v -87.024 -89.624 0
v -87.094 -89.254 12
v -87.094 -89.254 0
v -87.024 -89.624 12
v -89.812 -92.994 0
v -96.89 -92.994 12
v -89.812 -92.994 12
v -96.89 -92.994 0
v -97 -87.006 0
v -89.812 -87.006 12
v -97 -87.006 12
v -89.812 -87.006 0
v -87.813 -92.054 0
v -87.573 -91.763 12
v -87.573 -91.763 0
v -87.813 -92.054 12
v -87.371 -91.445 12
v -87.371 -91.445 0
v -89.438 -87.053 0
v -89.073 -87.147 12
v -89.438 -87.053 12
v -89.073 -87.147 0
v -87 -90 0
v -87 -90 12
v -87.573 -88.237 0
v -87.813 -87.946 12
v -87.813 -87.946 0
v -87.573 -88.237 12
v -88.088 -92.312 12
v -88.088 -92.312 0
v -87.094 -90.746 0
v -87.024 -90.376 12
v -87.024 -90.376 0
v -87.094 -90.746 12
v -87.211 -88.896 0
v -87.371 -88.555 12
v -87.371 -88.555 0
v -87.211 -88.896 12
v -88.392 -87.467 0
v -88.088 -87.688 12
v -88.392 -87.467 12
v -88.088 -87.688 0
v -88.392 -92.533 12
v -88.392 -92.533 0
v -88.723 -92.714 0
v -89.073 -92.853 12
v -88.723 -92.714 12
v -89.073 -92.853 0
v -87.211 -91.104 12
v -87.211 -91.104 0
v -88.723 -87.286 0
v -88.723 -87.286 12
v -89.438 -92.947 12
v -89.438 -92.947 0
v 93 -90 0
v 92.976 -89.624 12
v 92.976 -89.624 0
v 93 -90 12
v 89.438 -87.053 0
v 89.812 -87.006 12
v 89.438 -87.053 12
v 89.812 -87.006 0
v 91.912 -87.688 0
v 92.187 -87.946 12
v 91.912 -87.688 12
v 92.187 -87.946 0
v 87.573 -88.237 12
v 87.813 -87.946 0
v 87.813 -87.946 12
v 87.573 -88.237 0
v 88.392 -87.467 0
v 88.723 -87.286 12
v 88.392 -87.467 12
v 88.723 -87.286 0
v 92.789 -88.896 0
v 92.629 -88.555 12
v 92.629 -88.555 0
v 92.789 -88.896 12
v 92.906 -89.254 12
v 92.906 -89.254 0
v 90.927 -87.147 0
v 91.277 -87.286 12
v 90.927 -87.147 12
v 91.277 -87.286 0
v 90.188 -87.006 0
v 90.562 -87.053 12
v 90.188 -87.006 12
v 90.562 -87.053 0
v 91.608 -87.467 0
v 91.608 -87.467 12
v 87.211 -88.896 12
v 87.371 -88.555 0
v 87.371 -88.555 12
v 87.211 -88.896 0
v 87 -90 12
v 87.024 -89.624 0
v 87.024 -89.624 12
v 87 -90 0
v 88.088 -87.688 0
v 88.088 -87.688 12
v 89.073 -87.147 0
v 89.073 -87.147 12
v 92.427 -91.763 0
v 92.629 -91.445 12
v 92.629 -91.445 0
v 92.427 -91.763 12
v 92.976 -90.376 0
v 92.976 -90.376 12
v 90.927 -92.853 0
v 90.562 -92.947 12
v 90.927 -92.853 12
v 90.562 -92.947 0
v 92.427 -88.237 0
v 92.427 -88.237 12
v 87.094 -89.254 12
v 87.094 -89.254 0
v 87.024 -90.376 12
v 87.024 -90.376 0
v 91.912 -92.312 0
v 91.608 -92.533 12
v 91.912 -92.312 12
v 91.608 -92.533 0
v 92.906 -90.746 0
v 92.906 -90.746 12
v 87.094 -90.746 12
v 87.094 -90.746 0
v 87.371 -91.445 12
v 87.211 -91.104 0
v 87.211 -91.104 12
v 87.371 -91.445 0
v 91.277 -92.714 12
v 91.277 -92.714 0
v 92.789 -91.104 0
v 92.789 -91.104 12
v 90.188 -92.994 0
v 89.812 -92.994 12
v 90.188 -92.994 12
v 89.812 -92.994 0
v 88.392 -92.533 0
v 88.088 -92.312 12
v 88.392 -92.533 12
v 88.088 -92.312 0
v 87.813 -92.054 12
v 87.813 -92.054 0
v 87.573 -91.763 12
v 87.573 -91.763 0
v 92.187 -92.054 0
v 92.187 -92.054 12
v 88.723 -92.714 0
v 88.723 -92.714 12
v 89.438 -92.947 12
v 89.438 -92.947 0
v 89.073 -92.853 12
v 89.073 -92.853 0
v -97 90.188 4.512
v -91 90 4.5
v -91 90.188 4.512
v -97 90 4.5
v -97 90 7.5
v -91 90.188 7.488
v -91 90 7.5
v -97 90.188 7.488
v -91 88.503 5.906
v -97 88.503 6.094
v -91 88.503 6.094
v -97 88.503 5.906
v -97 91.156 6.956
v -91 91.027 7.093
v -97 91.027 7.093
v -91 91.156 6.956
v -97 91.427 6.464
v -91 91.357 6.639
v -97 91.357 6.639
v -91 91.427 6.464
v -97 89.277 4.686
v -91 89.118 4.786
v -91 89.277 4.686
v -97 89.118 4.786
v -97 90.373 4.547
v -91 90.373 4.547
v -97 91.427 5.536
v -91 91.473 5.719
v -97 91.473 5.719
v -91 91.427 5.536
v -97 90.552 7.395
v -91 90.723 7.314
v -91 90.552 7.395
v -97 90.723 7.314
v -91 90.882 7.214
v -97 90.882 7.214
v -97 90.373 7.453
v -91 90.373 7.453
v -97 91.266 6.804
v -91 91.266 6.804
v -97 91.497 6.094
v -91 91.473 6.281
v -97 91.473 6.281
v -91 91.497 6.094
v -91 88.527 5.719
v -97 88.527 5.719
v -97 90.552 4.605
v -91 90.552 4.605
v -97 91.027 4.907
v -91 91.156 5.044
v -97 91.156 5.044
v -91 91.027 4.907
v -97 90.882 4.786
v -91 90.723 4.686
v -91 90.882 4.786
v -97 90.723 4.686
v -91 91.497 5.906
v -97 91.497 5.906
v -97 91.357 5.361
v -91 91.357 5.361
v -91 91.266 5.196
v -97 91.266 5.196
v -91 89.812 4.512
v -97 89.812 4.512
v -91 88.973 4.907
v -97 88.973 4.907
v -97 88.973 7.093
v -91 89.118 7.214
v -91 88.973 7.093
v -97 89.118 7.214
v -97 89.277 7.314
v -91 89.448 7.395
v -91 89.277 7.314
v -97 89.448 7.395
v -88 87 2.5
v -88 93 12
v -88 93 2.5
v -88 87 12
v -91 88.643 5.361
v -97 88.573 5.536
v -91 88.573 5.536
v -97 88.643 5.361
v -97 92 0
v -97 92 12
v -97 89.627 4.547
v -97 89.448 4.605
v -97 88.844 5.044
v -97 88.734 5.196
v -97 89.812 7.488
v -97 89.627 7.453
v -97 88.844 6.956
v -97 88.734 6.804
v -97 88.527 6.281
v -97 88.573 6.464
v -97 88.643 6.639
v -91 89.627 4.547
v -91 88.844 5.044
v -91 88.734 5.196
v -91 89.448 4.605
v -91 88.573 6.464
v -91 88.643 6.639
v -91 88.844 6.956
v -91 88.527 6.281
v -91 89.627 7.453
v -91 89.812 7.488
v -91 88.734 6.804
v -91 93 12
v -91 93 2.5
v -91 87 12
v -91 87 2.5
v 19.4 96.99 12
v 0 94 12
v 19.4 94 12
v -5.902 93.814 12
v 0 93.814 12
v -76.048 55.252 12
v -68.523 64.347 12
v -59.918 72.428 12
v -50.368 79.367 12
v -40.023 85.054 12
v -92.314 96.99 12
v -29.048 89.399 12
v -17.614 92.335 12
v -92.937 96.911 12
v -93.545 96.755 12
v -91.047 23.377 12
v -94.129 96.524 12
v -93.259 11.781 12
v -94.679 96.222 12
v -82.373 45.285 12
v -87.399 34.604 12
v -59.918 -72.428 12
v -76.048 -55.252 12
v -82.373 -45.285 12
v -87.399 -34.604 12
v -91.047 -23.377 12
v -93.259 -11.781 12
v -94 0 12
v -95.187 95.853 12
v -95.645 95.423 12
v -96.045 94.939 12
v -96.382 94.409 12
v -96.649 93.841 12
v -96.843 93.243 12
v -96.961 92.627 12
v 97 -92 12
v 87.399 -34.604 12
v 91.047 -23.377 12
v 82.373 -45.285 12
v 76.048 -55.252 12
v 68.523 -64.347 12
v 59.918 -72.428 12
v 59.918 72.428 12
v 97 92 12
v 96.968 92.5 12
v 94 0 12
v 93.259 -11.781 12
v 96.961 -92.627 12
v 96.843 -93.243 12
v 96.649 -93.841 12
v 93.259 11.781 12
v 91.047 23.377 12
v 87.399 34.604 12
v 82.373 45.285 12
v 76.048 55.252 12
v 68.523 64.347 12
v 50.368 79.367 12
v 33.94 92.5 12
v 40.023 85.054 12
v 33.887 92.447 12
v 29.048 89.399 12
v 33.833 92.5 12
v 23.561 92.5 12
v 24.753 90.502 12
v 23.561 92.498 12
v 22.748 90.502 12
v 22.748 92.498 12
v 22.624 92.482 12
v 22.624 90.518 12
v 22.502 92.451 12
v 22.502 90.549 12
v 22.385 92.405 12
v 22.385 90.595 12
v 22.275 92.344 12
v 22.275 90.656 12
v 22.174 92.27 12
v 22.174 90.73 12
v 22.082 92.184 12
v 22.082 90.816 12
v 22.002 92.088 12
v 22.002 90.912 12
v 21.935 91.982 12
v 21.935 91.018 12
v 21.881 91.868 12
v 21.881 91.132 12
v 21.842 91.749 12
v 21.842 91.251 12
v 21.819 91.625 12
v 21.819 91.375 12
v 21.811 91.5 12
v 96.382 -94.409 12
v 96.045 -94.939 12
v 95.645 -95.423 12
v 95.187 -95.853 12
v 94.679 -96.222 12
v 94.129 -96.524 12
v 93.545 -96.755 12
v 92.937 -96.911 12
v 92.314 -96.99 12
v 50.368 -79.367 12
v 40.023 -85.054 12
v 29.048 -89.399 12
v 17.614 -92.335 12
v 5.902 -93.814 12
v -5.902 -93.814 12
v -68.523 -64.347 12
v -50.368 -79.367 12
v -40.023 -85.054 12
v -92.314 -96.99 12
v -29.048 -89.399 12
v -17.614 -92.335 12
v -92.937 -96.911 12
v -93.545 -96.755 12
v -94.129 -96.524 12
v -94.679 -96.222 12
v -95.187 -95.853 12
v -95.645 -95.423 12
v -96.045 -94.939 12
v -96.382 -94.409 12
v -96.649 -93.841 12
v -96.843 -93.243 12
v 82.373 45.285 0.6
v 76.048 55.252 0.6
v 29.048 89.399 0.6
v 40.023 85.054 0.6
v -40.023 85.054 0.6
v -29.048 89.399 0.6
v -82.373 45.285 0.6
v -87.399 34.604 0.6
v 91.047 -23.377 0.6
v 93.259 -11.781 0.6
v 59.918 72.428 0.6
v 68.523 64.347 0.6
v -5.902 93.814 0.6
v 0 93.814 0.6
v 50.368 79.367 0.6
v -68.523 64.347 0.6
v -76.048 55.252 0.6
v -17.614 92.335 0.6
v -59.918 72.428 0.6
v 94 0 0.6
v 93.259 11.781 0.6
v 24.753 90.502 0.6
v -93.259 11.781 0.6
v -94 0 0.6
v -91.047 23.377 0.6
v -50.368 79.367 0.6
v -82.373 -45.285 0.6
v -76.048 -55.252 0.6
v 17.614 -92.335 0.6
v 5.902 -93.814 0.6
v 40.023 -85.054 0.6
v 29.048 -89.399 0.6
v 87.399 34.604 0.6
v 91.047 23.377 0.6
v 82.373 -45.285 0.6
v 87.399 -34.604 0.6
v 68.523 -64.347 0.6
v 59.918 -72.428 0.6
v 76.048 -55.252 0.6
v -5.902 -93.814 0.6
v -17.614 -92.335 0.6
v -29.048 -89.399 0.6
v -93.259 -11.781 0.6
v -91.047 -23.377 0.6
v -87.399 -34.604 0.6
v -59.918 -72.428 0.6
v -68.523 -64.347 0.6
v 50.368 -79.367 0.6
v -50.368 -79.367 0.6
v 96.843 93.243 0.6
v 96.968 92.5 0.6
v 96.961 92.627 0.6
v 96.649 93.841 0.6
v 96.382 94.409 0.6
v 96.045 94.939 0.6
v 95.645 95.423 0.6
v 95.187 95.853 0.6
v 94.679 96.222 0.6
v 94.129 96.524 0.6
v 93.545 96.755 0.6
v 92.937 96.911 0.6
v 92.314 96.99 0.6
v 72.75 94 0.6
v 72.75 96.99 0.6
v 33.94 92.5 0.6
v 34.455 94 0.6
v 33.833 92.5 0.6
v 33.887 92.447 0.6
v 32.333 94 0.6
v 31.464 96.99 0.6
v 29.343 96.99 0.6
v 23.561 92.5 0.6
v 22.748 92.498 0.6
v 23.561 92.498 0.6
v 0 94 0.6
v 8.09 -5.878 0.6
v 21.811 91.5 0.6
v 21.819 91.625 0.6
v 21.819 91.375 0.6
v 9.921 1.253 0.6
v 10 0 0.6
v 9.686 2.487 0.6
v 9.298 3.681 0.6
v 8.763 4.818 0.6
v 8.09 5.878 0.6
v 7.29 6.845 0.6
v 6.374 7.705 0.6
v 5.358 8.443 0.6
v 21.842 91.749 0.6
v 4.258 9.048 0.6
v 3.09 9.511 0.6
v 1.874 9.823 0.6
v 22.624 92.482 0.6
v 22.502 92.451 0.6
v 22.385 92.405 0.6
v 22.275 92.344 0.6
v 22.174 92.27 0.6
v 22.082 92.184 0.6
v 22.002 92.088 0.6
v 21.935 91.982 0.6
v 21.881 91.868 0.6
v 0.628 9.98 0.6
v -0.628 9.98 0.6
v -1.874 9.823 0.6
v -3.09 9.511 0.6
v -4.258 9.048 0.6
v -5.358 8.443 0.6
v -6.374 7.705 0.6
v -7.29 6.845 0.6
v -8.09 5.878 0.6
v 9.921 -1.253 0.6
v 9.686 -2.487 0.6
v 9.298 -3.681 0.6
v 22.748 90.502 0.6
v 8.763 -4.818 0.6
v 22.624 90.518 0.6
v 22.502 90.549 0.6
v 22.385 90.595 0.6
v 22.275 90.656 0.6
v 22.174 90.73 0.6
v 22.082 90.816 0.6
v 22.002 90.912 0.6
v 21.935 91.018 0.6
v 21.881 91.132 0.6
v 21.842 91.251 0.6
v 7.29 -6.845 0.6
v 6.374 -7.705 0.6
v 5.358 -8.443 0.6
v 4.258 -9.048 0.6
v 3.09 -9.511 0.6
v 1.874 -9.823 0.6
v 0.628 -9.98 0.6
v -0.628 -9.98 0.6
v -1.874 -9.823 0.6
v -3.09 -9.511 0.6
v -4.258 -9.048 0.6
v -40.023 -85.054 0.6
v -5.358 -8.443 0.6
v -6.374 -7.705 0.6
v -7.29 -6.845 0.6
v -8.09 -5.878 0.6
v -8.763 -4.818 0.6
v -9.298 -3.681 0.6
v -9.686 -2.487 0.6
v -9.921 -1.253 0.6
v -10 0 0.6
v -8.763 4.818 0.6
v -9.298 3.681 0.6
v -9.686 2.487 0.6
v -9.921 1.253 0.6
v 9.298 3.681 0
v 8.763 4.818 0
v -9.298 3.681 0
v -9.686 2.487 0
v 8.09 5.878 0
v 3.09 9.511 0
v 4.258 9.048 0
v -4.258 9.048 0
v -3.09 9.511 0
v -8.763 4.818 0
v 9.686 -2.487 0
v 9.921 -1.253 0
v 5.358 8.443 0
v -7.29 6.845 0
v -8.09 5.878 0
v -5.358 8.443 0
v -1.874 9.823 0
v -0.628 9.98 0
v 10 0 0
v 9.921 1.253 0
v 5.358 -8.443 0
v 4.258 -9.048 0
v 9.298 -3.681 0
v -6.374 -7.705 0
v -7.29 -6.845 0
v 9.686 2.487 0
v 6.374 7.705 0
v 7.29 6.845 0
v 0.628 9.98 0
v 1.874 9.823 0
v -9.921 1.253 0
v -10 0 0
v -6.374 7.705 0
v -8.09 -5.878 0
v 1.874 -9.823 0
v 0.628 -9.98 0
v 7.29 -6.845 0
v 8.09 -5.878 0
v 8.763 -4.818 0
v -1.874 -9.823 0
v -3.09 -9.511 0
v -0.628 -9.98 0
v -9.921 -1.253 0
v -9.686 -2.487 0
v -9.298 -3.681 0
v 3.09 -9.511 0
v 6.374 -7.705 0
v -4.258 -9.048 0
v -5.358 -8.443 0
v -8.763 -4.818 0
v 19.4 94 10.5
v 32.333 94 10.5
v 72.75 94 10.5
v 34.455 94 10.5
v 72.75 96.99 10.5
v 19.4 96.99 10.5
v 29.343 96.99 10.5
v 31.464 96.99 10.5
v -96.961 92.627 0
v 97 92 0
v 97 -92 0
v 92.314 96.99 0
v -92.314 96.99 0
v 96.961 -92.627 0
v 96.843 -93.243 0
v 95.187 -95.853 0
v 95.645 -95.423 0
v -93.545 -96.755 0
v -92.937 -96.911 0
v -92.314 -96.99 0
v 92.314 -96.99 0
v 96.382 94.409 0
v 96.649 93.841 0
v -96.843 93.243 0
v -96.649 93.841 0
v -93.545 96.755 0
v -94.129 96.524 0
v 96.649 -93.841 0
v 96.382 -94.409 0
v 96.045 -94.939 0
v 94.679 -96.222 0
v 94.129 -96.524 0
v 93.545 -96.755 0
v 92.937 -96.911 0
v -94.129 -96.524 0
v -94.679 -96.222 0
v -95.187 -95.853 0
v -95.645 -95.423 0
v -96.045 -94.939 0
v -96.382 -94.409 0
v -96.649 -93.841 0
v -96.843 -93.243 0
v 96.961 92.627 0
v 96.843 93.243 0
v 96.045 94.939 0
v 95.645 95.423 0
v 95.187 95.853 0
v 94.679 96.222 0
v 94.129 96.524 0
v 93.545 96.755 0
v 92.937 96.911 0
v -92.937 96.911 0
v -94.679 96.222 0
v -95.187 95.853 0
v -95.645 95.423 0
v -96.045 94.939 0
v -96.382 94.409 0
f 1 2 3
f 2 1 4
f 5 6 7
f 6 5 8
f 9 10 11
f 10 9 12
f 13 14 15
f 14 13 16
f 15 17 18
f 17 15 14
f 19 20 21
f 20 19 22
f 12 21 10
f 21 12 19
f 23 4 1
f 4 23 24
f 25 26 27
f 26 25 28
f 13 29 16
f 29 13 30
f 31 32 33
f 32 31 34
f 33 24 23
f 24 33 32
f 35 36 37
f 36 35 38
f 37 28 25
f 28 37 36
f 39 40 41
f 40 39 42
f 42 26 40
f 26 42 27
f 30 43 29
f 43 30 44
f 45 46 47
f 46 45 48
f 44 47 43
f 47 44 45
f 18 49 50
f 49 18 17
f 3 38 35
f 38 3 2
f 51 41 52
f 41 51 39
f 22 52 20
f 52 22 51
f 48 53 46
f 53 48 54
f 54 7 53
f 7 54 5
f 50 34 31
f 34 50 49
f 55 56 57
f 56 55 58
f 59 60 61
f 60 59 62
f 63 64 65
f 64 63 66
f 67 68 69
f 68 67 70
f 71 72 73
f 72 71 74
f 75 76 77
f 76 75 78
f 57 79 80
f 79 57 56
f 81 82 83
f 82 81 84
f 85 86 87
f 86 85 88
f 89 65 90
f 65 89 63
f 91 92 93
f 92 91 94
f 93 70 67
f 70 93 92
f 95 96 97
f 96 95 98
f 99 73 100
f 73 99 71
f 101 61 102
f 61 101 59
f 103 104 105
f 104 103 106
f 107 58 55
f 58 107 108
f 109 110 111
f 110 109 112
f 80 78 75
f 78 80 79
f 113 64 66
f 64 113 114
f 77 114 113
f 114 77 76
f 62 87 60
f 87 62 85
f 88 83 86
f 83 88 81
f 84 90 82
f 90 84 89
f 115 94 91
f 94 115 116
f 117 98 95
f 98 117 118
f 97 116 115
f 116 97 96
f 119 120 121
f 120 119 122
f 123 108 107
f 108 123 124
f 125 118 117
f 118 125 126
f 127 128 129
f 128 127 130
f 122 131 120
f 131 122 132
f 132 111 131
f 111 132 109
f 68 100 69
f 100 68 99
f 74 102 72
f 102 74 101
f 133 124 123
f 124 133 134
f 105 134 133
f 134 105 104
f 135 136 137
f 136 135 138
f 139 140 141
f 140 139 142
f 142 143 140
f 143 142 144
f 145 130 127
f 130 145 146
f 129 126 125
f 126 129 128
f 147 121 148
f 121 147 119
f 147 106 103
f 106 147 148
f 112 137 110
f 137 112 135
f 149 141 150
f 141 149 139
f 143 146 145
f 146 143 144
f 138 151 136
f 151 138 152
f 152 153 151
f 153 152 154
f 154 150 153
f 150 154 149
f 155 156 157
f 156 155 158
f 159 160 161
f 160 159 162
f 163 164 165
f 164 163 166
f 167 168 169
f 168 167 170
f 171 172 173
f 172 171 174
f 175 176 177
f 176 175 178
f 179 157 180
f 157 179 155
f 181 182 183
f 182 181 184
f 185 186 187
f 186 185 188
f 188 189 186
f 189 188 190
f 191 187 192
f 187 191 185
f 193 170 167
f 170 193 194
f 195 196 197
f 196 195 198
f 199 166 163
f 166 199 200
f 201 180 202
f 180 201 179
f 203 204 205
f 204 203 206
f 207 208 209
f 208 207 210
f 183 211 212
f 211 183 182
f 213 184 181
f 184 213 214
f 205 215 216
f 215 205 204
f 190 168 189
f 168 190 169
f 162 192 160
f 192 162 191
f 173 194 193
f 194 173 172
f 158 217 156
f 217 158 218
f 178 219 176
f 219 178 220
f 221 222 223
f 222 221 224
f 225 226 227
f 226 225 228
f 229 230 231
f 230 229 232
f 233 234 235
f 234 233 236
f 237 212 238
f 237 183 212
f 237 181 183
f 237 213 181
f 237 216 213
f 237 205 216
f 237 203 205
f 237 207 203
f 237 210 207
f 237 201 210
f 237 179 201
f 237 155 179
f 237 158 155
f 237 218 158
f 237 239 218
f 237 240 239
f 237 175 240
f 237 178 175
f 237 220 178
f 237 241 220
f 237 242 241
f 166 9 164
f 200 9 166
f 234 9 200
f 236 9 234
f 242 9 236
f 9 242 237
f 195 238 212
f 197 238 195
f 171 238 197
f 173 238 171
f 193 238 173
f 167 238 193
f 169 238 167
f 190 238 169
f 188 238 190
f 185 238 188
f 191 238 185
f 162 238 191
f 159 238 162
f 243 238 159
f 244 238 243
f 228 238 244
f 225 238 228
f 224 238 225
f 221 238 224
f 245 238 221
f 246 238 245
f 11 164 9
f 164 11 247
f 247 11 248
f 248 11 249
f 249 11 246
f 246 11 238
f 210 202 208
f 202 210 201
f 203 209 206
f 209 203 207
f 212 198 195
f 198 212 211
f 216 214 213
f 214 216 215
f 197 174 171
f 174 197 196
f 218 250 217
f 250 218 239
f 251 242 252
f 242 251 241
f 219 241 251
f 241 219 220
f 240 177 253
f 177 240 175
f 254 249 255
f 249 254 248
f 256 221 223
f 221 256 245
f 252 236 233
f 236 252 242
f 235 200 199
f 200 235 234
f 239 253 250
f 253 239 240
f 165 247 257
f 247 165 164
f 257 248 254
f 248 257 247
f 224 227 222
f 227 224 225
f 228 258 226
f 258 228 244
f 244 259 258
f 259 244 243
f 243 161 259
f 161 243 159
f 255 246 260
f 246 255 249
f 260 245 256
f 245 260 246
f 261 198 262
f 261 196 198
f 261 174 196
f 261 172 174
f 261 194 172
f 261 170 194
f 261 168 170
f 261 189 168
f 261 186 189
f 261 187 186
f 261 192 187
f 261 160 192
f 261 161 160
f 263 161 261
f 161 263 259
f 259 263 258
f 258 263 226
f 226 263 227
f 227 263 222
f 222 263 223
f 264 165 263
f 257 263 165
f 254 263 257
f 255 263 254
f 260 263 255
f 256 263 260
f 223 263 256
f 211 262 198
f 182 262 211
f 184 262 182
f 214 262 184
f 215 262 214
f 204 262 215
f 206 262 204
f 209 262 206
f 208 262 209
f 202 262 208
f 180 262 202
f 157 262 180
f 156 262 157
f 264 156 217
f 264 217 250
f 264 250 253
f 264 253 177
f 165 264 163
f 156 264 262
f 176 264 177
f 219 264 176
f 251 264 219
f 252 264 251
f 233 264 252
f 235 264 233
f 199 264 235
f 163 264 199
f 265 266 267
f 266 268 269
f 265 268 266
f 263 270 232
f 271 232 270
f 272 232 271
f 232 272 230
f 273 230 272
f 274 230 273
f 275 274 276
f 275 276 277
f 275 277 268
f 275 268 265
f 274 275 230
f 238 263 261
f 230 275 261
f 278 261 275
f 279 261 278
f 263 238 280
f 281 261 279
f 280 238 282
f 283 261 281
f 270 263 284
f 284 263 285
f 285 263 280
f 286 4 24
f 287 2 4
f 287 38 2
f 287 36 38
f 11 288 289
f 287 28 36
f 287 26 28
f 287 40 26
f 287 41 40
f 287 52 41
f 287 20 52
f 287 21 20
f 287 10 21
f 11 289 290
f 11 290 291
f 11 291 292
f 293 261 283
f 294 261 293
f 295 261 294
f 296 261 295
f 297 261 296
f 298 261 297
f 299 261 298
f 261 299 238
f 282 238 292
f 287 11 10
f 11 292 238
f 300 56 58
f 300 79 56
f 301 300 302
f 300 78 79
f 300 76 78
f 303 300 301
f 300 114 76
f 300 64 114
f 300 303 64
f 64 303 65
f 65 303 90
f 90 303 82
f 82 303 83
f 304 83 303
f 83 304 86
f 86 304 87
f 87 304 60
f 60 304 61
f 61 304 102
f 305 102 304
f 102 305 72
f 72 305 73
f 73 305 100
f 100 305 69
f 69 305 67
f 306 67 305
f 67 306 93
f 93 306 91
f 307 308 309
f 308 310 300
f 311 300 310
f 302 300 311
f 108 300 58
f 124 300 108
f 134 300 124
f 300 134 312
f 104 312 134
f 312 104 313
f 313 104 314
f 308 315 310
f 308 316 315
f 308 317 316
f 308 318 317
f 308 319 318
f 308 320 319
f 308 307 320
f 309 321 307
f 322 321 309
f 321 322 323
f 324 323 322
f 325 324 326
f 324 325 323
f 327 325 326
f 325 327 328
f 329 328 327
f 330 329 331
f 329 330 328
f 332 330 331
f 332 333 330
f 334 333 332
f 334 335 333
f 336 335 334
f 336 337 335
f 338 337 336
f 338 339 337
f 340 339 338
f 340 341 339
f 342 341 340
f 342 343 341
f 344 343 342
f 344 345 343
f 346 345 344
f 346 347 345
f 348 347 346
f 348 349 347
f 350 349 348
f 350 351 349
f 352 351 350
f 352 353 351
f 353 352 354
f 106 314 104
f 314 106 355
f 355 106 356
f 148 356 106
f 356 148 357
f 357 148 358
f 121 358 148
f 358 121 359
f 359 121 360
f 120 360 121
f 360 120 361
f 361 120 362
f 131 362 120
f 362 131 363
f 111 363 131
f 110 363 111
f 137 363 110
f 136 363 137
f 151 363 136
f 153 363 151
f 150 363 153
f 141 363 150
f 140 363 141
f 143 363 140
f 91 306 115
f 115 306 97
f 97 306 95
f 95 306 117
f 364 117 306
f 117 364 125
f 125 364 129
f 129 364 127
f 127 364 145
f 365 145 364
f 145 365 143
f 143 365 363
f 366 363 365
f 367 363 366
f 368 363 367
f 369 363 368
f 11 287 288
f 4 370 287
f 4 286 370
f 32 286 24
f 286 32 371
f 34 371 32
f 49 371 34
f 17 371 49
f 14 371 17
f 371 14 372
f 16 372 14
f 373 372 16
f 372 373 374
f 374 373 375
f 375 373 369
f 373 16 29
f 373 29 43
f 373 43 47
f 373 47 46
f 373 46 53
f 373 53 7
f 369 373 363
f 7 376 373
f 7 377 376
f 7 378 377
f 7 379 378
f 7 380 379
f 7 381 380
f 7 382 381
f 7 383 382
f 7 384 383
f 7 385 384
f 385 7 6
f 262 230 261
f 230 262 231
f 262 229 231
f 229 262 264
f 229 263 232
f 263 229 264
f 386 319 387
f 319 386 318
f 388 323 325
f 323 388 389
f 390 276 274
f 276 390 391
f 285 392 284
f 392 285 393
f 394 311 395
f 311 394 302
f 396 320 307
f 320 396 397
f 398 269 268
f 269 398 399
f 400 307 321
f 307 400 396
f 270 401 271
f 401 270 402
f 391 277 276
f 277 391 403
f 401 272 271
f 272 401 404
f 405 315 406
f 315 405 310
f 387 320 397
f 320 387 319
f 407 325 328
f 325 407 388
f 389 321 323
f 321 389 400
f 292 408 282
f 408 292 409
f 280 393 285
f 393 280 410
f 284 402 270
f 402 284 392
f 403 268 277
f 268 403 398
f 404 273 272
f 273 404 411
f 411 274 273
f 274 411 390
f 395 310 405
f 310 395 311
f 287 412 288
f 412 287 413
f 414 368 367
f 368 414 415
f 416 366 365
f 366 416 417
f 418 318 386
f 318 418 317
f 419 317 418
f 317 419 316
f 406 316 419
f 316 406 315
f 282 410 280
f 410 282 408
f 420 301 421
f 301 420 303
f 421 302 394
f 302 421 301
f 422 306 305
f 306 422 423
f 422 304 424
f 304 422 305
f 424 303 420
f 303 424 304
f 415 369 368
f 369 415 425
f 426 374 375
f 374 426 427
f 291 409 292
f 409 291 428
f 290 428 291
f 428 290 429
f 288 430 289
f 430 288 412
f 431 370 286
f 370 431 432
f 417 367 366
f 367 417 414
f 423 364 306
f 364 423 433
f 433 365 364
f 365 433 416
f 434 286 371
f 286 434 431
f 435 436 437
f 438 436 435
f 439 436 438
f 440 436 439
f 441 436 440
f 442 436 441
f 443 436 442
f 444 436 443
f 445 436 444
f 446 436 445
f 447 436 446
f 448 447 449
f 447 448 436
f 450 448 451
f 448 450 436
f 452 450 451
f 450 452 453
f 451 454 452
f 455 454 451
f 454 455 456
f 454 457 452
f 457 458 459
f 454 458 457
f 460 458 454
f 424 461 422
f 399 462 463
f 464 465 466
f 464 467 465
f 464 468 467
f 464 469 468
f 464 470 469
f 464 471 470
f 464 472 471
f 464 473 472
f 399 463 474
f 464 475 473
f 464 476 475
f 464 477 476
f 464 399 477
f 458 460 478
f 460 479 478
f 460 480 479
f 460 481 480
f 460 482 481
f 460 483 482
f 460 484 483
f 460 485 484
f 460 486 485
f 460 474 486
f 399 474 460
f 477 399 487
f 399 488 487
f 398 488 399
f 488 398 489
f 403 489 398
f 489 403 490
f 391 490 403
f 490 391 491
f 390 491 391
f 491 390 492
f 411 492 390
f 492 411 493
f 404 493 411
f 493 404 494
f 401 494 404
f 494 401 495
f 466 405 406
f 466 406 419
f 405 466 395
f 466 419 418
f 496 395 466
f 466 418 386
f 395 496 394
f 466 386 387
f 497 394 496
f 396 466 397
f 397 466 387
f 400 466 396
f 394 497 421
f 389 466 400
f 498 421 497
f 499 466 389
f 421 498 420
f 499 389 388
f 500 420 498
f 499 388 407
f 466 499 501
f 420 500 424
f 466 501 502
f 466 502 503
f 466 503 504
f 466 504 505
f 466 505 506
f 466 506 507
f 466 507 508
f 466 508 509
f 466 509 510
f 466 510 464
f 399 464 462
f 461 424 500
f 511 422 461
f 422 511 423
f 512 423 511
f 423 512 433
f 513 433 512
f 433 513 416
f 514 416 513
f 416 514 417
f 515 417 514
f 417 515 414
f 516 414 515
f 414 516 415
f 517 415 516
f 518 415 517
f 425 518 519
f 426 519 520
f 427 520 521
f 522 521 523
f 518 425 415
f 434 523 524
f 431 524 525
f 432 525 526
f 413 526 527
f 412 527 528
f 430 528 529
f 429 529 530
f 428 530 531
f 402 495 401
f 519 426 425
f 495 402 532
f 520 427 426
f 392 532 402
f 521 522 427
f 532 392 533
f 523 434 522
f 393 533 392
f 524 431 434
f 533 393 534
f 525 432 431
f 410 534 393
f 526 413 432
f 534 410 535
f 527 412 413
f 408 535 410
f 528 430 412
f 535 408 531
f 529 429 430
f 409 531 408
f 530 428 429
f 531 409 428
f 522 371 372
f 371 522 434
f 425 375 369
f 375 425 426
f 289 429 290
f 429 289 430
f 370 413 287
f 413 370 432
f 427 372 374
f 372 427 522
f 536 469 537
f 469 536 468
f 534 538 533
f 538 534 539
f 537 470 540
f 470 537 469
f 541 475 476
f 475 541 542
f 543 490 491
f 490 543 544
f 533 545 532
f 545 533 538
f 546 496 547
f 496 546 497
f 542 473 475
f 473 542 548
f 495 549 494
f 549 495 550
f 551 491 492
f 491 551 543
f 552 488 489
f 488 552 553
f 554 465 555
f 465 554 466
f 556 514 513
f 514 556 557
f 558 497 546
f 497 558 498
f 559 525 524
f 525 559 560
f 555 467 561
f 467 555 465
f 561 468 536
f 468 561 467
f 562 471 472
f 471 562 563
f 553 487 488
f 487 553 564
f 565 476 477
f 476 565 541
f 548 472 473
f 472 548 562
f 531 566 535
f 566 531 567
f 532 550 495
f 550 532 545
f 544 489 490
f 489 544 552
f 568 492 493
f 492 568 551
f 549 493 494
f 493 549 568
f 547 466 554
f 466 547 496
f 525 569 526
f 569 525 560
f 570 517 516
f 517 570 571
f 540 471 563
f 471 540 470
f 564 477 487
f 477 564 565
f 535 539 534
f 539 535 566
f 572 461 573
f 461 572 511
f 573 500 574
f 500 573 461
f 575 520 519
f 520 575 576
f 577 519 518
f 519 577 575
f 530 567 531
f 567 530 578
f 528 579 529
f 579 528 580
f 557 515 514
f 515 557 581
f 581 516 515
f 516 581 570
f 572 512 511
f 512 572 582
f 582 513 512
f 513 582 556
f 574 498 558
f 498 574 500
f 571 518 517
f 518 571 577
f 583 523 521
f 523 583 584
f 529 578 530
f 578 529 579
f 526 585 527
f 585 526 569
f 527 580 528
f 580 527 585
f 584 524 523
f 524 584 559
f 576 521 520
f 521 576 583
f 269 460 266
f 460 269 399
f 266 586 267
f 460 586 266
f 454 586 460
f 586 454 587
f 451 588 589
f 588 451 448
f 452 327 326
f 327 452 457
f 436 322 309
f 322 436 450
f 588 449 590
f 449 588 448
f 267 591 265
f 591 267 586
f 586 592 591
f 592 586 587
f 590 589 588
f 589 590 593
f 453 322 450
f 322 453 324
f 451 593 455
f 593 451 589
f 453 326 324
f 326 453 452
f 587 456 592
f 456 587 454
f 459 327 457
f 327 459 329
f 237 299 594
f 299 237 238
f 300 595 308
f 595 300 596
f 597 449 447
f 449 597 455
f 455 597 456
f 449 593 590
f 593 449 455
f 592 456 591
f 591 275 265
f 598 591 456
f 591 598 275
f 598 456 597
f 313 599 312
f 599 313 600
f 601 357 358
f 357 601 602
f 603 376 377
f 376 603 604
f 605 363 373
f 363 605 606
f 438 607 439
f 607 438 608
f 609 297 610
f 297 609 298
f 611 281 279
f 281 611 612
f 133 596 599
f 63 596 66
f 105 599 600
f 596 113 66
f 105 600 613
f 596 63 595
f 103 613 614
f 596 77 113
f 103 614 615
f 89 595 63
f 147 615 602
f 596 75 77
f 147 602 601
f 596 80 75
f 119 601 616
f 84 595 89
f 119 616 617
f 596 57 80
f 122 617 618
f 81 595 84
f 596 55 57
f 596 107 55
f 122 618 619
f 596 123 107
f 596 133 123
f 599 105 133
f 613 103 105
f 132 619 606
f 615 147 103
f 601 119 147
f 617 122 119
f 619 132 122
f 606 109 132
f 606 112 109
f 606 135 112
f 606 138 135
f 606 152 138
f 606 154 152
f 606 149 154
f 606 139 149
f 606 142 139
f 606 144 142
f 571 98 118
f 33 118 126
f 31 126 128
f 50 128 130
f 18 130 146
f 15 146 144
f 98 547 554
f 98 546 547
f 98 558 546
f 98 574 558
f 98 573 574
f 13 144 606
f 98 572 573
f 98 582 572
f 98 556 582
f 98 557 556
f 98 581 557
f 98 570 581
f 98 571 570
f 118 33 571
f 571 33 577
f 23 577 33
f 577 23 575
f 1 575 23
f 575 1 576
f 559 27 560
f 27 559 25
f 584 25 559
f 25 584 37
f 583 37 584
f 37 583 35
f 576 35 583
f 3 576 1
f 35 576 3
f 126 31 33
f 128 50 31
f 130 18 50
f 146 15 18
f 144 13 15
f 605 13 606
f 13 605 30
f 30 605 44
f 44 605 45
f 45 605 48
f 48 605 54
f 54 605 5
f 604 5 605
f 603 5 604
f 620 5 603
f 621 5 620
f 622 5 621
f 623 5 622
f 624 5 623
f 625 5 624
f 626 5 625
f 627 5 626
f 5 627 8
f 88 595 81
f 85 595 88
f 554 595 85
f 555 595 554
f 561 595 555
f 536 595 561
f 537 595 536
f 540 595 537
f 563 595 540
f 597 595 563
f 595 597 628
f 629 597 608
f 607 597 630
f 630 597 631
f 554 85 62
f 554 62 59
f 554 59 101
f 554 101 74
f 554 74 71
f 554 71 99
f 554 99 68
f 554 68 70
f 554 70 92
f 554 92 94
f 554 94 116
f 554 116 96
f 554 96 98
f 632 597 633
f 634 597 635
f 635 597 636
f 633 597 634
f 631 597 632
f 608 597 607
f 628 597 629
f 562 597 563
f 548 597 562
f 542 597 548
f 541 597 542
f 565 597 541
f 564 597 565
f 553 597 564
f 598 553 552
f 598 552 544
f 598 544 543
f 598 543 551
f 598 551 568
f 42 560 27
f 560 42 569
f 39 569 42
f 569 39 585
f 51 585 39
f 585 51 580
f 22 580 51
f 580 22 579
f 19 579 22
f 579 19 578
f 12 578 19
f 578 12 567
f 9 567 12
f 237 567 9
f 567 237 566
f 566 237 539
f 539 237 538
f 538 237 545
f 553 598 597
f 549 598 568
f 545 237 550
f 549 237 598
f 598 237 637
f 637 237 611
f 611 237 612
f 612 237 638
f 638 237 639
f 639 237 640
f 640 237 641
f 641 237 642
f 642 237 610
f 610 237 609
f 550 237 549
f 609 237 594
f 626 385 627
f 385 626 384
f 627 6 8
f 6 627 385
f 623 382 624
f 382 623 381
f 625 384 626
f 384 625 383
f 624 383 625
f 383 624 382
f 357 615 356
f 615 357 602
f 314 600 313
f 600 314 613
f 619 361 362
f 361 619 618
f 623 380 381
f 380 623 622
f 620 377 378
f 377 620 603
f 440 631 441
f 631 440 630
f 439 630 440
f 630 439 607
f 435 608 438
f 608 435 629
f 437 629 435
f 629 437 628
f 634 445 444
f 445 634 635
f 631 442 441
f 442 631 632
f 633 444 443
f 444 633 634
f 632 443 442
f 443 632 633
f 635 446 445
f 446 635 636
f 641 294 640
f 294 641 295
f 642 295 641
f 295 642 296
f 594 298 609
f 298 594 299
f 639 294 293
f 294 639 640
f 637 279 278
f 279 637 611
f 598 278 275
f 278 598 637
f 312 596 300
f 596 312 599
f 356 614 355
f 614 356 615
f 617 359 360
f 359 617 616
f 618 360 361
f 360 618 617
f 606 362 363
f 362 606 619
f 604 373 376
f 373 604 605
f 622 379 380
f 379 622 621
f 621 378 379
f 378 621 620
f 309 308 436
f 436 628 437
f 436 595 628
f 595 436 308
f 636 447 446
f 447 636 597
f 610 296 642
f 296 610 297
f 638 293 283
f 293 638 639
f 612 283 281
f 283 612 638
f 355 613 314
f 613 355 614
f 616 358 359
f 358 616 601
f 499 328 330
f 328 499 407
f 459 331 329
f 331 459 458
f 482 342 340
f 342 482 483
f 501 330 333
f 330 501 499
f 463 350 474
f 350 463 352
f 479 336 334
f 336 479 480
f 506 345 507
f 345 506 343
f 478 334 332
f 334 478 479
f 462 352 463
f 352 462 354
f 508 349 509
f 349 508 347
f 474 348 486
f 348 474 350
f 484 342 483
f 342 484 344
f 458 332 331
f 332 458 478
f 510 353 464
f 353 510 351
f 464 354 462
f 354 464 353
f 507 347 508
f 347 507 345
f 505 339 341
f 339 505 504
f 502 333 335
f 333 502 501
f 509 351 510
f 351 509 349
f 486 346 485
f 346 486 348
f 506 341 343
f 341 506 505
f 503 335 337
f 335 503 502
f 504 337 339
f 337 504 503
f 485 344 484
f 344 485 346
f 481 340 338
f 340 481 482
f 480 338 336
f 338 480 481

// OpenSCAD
$fn = 50;


union() {
	difference() {
		union() {
			translate(v = [0, 0, 0]) {
				rotate(a = [0, 0, 0]) {
					hull() {
						translate(v = [-92.0000000000, 92.0000000000, 0]) {
							rotate(a = [0, 0, 0]) {
								translate(v = [0, 0, 0]) {
									rotate(a = [0, 0, 0]) {
										cylinder(h = 12, r = 5);
									}
								}
							}
						}
						translate(v = [92.0000000000, 92.0000000000, 0]) {
							rotate(a = [0, 0, 0]) {
								translate(v = [0, 0, 0]) {
									rotate(a = [0, 0, 0]) {
										cylinder(h = 12, r = 5);
									}
								}
							}
						}
						translate(v = [-92.0000000000, -92.0000000000, 0]) {
							rotate(a = [0, 0, 0]) {
								translate(v = [0, 0, 0]) {
									rotate(a = [0, 0, 0]) {
										cylinder(h = 12, r = 5);
									}
								}
							}
						}
						translate(v = [92.0000000000, -92.0000000000, 0]) {
							rotate(a = [0, 0, 0]) {
								translate(v = [0, 0, 0]) {
									rotate(a = [0, 0, 0]) {
										cylinder(h = 12, r = 5);
									}
								}
							}
						}
					}
				}
			}
		}
		union() {
			translate(v = [-97.5000000000, -90.0000000000, -125]) {
				rotate(a = [0, 0, 0]) {
					hull() {
						translate(v = [7.5000000000, 0, 0]) {
							rotate(a = [0, 0, 0]) {
								translate(v = [0, 0, 0]) {
									rotate(a = [0, 0, 0]) {
										cylinder(h = 250, r = 3.0000000000);
									}
								}
							}
						}
						translate(v = [-7.5000000000, 0, 0]) {
							rotate(a = [0, 0, 0]) {
								translate(v = [0, 0, 0]) {
									rotate(a = [0, 0, 0]) {
										cylinder(h = 250, r = 3.0000000000);
									}
								}
							}
						}
					}
				}
			}
			translate(v = [90.0000000000, -90.0000000000, -125.0000000000]) {
				rotate(a = [0, 0, 0]) {
					cylinder(h = 250, r = 3.0000000000);
				}
			}
			translate(v = [-97.0000000000, 90.0000000000, 6.0000000000]) {
				rotate(a = [0, 90, 0]) {
					cylinder(h = 9, r = 1.5000000000);
				}
			}
			translate(v = [-91.0000000000, 87.0000000000, 2.5000000000]) {
				rotate(a = [0, 0, 0]) {
					cube(size = [3, 6, 9.5000000000]);
				}
			}
			translate(v = [0, 0, 0.6000000000]) {
				rotate(a = [0, 0, 0]) {
					cylinder(h = 14.4000000000, r = 94.0000000000);
				}
			}
			translate(v = [0, 0, -6.0000000000]) {
				rotate(a = [0, 0, 0]) {
					cylinder(h = 12, r = 10.0000000000);
				}
			}
			translate(v = [0.0000000000, 92.5000000000, 0.6000000000]) {
				rotate(a = [0, 0, 0]) {
					cube(size = [97.0000000000, 1.5000000000, 14.4000000000]);
				}
			}
			translate(v = [72.7500000000, 92.5000000000, 0.6000000000]) {
				rotate(a = [0, 0, 0]) {
					cube(size = [24.2500000000, 4.5000000000, 14.4000000000]);
				}
			}
			translate(v = [19.4000000000, 92.5000000000, 10.5000000000]) {
				rotate(a = [0, 0, 0]) {
					cube(size = [77.6000000000, 4.5000000000, 1.5000000000]);
				}
			}
			translate(v = [28.5833333333, 97.7500000000, 0.6000000000]) {
				rotate(a = [0, 0, -45]) {
					cube(size = [7.5000000000, 1.5000000000, 14.4000000000]);
				}
			}
			translate(v = [16.0610000000, 90.5000000000, 0.6000000000]) {
				rotate(a = [0, 0, 0]) {
					cube(size = [7.5000000000, 2, 11.4000000000]);
				}
			}
		}
	}
	union() {
		translate(v = [25.3110000000, 91.5000000000, 0]) {
			rotate(a = [0, 0, 0]) {
				hull() {
					translate(v = [2.5000000000, 0, 0]) {
						rotate(a = [0, 0, 0]) {
							translate(v = [0, 0, 0]) {
								rotate(a = [0, 0, 0]) {
									cylinder(h = 12, r = 1.0000000000);
								}
							}
						}
					}
					translate(v = [-2.5000000000, 0, 0]) {
						rotate(a = [0, 0, 0]) {
							translate(v = [0, 0, 0]) {
								rotate(a = [0, 0, 0]) {
									cylinder(h = 12, r = 1.0000000000);
								}
							}
						}
					}
				}
			}
		}
	}
}
